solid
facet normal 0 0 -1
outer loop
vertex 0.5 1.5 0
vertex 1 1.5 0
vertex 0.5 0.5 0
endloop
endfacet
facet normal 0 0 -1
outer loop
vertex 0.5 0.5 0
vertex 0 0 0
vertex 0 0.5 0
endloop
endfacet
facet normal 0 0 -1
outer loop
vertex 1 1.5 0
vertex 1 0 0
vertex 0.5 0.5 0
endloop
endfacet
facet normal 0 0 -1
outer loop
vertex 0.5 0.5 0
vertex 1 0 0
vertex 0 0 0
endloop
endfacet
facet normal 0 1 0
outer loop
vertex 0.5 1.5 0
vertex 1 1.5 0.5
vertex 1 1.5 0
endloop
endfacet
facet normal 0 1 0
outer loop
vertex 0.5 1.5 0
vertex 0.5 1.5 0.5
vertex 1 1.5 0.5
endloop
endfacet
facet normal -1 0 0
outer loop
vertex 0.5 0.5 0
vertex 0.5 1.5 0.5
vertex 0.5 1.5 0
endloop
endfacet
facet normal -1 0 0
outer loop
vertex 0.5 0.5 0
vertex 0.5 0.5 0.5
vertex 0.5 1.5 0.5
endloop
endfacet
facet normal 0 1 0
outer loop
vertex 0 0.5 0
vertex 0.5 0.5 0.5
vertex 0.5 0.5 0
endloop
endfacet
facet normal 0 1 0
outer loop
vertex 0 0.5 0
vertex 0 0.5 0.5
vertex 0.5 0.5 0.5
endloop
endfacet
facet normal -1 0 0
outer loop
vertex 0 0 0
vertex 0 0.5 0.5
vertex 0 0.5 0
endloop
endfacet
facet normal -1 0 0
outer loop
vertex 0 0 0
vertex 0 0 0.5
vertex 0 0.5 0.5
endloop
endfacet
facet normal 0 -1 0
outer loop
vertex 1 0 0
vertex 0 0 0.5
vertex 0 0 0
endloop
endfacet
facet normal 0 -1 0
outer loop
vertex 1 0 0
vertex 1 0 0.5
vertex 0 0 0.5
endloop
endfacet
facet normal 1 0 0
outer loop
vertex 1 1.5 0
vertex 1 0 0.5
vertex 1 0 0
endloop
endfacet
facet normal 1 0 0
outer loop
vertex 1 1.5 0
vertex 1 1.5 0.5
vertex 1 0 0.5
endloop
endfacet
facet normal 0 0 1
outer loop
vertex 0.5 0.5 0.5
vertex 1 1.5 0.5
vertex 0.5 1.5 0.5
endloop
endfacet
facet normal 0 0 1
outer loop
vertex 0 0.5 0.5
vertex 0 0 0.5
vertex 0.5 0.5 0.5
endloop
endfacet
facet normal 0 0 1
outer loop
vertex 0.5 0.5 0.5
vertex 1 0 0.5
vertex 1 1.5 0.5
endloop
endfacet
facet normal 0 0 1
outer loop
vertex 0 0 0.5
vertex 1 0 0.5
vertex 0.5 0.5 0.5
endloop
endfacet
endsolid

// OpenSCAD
// Tetromino (J) for Stacks of Shapes
// by Slashee the Cow
linear_extrude(0.5)
polygon([[0,0],[1,0],[1,1.5],[0.5,1.5],[0.5,0.5],[0,0.5]]);
